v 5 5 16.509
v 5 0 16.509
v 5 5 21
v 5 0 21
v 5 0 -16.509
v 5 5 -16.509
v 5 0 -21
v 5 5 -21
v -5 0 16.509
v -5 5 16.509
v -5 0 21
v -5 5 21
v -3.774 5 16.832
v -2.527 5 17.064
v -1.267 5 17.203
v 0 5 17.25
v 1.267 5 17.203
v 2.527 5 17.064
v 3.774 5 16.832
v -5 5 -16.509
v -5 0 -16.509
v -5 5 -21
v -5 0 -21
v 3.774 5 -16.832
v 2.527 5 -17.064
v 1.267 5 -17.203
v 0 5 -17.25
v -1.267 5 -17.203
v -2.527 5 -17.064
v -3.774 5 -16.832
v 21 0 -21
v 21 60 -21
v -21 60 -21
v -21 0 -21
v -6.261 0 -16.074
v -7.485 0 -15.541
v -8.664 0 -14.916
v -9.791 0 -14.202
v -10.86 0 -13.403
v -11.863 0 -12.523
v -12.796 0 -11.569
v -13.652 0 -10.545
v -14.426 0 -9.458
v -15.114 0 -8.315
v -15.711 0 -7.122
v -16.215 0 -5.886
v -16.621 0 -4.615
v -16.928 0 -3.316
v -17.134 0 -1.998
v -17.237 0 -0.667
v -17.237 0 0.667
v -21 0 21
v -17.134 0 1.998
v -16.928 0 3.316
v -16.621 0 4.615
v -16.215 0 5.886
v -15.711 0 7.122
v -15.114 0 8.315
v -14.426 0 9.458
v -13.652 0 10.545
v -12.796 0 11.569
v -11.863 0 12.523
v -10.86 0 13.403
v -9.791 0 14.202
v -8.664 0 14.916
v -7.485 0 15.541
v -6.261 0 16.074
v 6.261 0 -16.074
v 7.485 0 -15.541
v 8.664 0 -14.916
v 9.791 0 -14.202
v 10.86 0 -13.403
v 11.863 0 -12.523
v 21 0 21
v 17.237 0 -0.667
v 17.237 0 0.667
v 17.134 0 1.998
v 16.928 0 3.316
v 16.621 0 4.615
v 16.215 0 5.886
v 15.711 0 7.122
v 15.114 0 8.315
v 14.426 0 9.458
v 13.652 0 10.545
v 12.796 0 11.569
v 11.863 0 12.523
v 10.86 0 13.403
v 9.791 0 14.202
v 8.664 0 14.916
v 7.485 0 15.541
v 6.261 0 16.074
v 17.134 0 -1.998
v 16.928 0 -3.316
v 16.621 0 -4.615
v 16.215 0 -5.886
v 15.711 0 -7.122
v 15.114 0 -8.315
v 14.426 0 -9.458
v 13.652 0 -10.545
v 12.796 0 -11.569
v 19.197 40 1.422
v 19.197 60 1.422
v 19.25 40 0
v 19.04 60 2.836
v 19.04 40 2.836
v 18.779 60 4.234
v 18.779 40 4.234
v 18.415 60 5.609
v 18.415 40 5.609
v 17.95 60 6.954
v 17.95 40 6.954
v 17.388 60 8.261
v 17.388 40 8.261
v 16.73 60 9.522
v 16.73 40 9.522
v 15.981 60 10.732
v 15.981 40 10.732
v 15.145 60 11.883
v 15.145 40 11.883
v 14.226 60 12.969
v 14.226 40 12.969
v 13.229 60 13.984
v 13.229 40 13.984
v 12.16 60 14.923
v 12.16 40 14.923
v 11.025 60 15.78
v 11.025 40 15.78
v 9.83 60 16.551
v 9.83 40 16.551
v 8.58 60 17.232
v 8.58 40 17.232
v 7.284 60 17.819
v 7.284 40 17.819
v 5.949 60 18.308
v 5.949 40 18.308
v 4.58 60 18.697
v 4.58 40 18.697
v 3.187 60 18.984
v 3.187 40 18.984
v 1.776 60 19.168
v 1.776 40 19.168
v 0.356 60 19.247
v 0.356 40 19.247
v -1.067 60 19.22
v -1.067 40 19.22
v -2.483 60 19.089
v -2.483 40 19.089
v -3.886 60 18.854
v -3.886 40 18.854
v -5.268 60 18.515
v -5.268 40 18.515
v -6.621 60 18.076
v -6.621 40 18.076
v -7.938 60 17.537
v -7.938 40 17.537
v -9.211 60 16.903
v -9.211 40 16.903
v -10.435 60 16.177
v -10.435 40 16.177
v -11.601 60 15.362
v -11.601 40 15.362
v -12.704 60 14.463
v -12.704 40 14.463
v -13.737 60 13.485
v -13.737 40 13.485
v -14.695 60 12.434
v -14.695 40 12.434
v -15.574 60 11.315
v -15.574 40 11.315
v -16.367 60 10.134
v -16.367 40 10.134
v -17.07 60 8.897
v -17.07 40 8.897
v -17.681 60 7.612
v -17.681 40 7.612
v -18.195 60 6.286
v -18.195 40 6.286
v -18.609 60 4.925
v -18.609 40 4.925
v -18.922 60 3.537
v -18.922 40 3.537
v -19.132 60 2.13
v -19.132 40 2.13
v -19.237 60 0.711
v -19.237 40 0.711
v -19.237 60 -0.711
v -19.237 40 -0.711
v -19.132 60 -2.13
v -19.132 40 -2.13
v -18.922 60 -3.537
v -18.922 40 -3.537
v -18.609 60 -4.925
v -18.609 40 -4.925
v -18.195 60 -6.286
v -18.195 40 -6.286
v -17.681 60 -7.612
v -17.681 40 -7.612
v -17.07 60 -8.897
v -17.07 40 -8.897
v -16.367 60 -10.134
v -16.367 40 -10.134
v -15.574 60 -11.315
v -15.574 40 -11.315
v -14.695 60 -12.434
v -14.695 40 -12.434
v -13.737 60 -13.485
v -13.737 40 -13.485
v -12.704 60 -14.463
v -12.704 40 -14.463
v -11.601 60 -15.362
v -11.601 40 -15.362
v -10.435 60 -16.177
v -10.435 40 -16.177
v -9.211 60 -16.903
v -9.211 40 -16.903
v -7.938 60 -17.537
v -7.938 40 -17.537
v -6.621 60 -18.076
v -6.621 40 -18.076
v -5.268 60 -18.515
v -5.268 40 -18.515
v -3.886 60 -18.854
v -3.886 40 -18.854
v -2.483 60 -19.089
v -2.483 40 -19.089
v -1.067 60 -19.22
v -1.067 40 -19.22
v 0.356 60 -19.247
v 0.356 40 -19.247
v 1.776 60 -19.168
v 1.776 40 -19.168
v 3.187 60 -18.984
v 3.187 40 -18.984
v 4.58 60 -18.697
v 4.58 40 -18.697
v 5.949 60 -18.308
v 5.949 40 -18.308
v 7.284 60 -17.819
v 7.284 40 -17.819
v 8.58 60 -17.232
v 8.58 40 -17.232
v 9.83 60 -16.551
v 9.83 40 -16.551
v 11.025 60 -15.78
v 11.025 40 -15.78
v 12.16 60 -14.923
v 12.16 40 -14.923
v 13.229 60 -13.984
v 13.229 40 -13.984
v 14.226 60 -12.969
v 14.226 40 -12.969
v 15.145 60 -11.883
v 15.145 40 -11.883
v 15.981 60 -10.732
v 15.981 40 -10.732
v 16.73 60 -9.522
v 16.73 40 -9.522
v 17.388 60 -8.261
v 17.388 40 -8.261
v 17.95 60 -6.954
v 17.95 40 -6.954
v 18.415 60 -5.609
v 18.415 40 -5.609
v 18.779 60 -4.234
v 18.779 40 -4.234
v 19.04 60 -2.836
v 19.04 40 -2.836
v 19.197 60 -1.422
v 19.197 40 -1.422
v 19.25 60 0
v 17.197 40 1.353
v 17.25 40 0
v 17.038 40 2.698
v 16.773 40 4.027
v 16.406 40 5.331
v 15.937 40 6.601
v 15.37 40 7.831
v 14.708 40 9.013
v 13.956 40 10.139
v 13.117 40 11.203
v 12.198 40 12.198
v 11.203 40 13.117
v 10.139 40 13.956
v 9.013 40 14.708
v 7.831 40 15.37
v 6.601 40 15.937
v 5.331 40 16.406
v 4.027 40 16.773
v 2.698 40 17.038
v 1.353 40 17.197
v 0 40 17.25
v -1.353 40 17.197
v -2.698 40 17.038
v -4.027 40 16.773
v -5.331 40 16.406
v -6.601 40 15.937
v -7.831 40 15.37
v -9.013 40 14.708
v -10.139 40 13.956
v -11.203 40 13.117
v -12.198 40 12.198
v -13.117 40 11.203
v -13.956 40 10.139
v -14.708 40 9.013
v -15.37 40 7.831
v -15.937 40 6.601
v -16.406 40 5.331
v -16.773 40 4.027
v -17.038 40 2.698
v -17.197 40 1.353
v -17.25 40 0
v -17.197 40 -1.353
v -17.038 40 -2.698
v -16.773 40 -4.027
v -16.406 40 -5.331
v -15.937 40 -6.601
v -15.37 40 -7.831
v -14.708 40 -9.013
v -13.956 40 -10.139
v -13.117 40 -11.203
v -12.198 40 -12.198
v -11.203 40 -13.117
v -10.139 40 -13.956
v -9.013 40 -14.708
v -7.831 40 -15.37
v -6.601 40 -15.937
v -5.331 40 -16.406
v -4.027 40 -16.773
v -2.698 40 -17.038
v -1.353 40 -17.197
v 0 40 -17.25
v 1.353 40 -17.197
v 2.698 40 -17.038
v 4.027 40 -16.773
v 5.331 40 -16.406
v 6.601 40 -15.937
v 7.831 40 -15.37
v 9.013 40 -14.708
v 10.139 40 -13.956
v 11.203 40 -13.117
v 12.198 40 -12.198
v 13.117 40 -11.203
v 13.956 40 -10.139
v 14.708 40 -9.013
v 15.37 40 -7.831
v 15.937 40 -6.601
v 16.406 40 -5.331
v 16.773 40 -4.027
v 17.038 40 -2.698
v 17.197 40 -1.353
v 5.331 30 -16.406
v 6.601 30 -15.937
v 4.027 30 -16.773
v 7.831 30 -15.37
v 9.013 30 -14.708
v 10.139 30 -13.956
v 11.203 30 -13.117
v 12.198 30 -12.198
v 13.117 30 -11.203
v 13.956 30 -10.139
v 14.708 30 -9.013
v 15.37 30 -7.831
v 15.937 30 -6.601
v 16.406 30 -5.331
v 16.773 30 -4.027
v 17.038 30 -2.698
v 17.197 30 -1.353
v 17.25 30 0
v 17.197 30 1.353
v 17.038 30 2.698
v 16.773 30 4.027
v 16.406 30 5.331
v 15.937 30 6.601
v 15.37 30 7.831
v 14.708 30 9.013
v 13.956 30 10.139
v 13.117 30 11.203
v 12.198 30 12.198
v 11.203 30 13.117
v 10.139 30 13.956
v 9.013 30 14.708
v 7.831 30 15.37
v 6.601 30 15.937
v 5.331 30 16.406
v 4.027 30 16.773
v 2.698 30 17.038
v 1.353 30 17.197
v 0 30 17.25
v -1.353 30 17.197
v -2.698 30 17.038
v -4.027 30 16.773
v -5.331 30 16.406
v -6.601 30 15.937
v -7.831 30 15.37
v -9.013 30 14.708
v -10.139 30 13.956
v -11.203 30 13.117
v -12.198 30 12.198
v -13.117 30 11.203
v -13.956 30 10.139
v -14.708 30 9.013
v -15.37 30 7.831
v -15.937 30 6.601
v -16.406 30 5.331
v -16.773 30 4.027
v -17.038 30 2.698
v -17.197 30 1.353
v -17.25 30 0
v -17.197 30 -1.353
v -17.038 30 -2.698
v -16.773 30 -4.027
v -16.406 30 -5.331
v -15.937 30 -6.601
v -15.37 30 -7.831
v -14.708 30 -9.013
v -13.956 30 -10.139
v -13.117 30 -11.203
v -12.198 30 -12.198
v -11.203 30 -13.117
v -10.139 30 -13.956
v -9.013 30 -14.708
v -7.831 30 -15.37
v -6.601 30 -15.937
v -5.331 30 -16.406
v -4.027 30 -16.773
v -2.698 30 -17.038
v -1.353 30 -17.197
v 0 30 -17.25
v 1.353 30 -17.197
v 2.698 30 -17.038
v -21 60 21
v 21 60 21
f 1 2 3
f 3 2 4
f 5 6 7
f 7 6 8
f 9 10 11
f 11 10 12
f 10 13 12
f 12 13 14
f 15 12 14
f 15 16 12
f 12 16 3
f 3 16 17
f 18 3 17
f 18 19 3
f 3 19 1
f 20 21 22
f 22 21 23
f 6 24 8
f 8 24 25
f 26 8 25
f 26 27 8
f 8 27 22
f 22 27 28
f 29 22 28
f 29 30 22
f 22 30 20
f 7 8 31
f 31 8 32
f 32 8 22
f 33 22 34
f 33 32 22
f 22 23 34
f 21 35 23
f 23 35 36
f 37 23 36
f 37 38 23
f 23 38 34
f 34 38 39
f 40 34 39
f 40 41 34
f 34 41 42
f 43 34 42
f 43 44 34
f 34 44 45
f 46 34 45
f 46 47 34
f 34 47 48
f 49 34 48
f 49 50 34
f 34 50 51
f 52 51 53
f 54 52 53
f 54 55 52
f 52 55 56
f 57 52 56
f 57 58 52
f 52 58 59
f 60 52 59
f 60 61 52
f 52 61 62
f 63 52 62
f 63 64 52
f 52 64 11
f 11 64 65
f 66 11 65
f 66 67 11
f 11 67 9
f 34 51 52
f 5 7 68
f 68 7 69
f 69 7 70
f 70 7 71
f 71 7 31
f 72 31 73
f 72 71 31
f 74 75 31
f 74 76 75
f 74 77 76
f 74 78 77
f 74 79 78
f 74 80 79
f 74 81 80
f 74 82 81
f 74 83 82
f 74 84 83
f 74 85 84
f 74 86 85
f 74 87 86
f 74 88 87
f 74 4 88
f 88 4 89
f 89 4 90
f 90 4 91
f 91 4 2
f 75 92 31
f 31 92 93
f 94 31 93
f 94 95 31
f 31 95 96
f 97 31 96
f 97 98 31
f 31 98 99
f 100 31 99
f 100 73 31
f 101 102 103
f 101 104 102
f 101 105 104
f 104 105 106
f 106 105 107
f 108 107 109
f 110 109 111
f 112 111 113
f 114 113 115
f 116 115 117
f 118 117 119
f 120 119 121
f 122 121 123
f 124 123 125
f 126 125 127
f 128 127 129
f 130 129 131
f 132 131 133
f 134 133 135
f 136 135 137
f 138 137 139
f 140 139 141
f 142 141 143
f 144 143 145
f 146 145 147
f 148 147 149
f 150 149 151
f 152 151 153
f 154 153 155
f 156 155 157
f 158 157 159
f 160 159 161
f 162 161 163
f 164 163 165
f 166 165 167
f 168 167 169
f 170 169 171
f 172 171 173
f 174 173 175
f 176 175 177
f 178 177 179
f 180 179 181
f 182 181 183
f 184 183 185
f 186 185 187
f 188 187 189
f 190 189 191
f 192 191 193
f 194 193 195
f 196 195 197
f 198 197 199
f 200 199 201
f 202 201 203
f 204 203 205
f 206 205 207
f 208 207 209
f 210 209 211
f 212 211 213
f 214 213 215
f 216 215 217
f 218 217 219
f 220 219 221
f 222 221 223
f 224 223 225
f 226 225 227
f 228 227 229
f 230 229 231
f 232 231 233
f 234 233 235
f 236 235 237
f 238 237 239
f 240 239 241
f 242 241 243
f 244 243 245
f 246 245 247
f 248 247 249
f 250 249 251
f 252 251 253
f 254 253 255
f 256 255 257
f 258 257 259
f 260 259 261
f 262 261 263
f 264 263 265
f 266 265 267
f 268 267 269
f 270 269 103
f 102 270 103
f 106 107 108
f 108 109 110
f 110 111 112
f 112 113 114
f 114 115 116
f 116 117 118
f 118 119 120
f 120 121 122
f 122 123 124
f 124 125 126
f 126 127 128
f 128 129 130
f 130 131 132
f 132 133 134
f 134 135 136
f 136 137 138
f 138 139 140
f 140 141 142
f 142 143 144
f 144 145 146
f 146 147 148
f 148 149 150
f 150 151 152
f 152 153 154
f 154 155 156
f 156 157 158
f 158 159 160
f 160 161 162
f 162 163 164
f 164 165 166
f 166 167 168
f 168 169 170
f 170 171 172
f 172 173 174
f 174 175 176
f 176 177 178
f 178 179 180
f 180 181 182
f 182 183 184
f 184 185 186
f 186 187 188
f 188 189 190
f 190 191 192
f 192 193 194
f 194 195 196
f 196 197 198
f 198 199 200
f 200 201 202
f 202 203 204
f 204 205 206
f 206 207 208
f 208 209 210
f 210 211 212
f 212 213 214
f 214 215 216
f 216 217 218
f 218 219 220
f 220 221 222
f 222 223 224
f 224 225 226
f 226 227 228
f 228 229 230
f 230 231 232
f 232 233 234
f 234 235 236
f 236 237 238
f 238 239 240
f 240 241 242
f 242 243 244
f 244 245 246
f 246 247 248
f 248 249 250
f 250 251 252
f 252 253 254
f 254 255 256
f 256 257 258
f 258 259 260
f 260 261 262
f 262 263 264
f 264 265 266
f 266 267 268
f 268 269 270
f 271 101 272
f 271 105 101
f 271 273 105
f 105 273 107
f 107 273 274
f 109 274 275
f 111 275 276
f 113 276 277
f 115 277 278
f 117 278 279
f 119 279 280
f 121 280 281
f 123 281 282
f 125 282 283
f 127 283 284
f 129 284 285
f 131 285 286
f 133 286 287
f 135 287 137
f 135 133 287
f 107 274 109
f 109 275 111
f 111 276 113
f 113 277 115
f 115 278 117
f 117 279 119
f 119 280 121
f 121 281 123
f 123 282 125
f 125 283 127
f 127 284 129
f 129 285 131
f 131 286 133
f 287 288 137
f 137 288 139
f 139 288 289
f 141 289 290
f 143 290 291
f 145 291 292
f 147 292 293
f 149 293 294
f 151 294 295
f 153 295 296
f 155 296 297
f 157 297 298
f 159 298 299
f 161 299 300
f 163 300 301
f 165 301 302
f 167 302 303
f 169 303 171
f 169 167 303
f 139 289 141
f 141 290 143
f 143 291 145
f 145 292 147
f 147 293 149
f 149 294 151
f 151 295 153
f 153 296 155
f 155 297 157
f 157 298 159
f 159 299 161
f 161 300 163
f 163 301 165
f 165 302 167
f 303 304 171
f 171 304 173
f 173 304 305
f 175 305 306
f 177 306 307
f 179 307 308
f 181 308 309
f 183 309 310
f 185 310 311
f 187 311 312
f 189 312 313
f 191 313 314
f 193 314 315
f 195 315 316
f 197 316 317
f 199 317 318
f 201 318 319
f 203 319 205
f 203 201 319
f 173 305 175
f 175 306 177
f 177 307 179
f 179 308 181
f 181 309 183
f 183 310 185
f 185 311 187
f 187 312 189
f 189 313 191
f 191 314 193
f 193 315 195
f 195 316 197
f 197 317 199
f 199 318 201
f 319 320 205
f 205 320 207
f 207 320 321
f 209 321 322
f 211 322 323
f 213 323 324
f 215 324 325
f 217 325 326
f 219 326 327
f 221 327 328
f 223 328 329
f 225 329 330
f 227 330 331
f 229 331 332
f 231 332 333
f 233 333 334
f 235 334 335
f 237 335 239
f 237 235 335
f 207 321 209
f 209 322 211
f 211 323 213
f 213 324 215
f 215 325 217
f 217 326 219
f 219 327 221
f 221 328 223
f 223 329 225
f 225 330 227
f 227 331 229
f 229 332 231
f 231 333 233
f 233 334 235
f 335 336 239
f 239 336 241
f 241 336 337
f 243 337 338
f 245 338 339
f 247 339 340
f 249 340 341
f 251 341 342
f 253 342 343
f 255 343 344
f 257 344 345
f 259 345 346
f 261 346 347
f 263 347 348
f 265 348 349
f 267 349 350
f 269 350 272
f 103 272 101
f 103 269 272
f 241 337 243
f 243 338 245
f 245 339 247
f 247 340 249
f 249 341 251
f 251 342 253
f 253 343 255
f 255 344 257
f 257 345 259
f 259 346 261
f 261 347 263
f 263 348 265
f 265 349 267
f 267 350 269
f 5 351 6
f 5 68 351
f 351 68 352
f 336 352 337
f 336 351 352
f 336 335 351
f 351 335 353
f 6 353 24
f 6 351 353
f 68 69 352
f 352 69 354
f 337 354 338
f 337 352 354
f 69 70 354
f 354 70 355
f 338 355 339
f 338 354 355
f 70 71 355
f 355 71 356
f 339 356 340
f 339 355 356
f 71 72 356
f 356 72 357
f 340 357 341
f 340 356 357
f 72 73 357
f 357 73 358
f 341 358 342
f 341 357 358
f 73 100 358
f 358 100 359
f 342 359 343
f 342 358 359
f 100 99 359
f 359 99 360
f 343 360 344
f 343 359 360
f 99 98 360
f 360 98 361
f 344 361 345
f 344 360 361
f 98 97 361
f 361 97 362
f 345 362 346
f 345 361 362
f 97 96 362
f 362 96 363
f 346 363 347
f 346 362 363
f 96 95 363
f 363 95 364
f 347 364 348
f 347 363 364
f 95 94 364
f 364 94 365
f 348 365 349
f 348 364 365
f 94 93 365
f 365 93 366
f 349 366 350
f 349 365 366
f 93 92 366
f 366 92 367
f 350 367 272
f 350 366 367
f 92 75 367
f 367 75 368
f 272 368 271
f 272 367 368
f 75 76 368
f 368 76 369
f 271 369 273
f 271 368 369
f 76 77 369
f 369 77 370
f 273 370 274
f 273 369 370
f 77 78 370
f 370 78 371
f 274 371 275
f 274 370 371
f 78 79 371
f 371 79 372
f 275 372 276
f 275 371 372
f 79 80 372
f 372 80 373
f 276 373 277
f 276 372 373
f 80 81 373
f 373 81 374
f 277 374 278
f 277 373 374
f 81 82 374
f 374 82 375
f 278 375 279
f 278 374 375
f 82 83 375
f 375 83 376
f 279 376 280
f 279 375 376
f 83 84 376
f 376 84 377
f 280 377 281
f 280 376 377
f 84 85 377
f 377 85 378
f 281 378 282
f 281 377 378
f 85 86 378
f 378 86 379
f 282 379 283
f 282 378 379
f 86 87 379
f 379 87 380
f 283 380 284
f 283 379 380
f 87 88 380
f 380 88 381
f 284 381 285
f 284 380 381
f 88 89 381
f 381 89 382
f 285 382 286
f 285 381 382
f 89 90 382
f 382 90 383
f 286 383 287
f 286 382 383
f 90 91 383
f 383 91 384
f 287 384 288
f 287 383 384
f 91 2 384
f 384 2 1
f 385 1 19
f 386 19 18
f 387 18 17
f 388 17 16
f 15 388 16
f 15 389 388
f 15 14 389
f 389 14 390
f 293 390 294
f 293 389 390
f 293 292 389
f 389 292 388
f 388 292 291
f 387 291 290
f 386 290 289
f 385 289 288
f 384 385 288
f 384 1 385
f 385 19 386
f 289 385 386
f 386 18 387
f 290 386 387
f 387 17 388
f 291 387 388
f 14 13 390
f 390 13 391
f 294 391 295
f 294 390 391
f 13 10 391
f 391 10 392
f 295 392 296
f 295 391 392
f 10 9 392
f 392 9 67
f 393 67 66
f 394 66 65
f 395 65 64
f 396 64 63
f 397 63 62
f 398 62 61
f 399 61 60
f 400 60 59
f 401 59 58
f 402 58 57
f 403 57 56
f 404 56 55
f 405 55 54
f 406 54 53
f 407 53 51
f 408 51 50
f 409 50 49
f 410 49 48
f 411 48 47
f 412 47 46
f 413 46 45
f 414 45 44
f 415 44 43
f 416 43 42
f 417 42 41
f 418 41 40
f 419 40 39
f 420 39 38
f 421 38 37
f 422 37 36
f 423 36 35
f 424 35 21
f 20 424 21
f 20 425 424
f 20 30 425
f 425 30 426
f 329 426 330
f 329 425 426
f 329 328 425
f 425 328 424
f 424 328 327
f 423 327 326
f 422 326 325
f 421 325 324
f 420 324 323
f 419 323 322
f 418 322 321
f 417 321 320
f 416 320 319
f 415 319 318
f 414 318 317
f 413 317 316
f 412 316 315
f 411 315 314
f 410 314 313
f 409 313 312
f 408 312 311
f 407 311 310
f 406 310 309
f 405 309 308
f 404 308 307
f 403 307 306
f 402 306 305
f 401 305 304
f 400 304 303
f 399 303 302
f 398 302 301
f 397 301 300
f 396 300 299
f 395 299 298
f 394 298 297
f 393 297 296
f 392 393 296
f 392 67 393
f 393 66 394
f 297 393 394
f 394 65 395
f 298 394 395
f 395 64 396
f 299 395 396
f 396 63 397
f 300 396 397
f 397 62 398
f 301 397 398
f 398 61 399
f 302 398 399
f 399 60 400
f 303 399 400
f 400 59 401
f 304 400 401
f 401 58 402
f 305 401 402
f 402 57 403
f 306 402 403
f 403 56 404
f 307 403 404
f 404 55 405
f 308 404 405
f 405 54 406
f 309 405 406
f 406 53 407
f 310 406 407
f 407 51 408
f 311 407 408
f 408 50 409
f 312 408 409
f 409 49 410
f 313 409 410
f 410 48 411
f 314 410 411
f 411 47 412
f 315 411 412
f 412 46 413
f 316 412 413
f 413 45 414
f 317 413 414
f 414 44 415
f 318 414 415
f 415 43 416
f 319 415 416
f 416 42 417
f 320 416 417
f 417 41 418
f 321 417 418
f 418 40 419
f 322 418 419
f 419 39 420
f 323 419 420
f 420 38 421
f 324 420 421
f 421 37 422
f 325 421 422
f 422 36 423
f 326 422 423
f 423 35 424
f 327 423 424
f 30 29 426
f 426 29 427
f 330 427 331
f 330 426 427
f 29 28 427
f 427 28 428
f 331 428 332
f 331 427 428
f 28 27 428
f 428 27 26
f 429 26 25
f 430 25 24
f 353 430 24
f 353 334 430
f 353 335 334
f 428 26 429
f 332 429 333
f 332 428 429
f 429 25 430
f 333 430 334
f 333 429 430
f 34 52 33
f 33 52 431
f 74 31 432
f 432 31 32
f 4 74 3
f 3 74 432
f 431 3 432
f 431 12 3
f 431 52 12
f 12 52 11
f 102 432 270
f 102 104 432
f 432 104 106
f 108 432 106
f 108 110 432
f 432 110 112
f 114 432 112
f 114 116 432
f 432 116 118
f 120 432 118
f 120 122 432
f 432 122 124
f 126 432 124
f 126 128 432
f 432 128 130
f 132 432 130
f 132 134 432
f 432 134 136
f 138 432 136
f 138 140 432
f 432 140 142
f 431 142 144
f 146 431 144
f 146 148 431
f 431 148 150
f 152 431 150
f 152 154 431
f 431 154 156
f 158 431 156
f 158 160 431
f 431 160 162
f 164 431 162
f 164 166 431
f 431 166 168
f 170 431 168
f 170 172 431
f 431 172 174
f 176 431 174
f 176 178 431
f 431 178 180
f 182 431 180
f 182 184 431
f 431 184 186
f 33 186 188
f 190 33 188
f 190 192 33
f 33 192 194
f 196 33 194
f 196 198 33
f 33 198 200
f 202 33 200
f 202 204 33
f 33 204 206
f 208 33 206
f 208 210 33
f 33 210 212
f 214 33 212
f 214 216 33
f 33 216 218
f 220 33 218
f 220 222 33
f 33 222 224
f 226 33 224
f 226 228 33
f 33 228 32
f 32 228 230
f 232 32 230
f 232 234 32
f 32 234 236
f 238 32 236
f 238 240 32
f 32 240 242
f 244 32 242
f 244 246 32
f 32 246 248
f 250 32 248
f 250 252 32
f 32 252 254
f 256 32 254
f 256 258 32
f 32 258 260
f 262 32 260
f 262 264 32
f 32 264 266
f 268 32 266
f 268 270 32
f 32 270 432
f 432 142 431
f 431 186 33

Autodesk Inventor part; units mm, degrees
ref_plane "YZ Plane" through (0, 0, 0) normal (1, 0, 0) x (0, 1, 0)
ref_plane "XZ Plane" through (0, 0, 0) normal (0, 1, 0) x (-1, 0, 0)
ref_plane "XY Plane" through (0, 0, 0) normal (0, 0, 1) x (1, 0, 0)
sketch "Sketch1" plane through (0, 0, 0) normal (0, 1, 0) x (-1, 0, 0)
  line L0 (-21, 21) -> (21, 21)
  line L1 (21, 21) -> (21, -21)
  line L2 (21, -21) -> (-21, -21)
  line L3 (-21, -21) -> (-21, 21)
  line L4 (-21, 21) -> (21, -21) construction
  line L5 (21, 21) -> (-21, -21) construction
  point P0 (0, 0)
  dimension "d0" = 42
  dimension "d1" = 42
extrude "Extrusion1" add sketch "Sketch1" along normal blind 60
sketch "Sketch2" plane through (0, 60, 0) normal (0, 1, 0) x (1, 0, 0)
  circle A0 centre (0, 0) radius 17.25
  dimension "d4" = 34.5
extrude "Extrusion2" cut sketch "Sketch2" against normal through all
sketch "Sketch3" plane through (0, 60, 0) normal (0, 1, 0) x (1, 0, 0)
  circle A0 centre (0, 0) radius 19.25
  dimension "d7" = 38.5
extrude "Extrusion3" cut sketch "Sketch3" against normal blind 20
sketch "Sketch4" plane through (21, 0, -21) normal (0, 0, -1) x (-1, 0, 0)
  line L0 (16, -5) -> (26, -5)
  line L1 (26, -5) -> (26, 5)
  line L2 (26, 5) -> (16, 5)
  line L3 (16, 5) -> (16, -5)
  line L4 (16, -5) -> (26, 5) construction
  line L5 (26, -5) -> (16, 5) construction
  point P0 (21, 0)
  dimension "d10" = 10
  dimension "d11" = 10
extrude "Extrusion4" cut sketch "Sketch4" against normal through all
properties part number "DCMotorHolder"
